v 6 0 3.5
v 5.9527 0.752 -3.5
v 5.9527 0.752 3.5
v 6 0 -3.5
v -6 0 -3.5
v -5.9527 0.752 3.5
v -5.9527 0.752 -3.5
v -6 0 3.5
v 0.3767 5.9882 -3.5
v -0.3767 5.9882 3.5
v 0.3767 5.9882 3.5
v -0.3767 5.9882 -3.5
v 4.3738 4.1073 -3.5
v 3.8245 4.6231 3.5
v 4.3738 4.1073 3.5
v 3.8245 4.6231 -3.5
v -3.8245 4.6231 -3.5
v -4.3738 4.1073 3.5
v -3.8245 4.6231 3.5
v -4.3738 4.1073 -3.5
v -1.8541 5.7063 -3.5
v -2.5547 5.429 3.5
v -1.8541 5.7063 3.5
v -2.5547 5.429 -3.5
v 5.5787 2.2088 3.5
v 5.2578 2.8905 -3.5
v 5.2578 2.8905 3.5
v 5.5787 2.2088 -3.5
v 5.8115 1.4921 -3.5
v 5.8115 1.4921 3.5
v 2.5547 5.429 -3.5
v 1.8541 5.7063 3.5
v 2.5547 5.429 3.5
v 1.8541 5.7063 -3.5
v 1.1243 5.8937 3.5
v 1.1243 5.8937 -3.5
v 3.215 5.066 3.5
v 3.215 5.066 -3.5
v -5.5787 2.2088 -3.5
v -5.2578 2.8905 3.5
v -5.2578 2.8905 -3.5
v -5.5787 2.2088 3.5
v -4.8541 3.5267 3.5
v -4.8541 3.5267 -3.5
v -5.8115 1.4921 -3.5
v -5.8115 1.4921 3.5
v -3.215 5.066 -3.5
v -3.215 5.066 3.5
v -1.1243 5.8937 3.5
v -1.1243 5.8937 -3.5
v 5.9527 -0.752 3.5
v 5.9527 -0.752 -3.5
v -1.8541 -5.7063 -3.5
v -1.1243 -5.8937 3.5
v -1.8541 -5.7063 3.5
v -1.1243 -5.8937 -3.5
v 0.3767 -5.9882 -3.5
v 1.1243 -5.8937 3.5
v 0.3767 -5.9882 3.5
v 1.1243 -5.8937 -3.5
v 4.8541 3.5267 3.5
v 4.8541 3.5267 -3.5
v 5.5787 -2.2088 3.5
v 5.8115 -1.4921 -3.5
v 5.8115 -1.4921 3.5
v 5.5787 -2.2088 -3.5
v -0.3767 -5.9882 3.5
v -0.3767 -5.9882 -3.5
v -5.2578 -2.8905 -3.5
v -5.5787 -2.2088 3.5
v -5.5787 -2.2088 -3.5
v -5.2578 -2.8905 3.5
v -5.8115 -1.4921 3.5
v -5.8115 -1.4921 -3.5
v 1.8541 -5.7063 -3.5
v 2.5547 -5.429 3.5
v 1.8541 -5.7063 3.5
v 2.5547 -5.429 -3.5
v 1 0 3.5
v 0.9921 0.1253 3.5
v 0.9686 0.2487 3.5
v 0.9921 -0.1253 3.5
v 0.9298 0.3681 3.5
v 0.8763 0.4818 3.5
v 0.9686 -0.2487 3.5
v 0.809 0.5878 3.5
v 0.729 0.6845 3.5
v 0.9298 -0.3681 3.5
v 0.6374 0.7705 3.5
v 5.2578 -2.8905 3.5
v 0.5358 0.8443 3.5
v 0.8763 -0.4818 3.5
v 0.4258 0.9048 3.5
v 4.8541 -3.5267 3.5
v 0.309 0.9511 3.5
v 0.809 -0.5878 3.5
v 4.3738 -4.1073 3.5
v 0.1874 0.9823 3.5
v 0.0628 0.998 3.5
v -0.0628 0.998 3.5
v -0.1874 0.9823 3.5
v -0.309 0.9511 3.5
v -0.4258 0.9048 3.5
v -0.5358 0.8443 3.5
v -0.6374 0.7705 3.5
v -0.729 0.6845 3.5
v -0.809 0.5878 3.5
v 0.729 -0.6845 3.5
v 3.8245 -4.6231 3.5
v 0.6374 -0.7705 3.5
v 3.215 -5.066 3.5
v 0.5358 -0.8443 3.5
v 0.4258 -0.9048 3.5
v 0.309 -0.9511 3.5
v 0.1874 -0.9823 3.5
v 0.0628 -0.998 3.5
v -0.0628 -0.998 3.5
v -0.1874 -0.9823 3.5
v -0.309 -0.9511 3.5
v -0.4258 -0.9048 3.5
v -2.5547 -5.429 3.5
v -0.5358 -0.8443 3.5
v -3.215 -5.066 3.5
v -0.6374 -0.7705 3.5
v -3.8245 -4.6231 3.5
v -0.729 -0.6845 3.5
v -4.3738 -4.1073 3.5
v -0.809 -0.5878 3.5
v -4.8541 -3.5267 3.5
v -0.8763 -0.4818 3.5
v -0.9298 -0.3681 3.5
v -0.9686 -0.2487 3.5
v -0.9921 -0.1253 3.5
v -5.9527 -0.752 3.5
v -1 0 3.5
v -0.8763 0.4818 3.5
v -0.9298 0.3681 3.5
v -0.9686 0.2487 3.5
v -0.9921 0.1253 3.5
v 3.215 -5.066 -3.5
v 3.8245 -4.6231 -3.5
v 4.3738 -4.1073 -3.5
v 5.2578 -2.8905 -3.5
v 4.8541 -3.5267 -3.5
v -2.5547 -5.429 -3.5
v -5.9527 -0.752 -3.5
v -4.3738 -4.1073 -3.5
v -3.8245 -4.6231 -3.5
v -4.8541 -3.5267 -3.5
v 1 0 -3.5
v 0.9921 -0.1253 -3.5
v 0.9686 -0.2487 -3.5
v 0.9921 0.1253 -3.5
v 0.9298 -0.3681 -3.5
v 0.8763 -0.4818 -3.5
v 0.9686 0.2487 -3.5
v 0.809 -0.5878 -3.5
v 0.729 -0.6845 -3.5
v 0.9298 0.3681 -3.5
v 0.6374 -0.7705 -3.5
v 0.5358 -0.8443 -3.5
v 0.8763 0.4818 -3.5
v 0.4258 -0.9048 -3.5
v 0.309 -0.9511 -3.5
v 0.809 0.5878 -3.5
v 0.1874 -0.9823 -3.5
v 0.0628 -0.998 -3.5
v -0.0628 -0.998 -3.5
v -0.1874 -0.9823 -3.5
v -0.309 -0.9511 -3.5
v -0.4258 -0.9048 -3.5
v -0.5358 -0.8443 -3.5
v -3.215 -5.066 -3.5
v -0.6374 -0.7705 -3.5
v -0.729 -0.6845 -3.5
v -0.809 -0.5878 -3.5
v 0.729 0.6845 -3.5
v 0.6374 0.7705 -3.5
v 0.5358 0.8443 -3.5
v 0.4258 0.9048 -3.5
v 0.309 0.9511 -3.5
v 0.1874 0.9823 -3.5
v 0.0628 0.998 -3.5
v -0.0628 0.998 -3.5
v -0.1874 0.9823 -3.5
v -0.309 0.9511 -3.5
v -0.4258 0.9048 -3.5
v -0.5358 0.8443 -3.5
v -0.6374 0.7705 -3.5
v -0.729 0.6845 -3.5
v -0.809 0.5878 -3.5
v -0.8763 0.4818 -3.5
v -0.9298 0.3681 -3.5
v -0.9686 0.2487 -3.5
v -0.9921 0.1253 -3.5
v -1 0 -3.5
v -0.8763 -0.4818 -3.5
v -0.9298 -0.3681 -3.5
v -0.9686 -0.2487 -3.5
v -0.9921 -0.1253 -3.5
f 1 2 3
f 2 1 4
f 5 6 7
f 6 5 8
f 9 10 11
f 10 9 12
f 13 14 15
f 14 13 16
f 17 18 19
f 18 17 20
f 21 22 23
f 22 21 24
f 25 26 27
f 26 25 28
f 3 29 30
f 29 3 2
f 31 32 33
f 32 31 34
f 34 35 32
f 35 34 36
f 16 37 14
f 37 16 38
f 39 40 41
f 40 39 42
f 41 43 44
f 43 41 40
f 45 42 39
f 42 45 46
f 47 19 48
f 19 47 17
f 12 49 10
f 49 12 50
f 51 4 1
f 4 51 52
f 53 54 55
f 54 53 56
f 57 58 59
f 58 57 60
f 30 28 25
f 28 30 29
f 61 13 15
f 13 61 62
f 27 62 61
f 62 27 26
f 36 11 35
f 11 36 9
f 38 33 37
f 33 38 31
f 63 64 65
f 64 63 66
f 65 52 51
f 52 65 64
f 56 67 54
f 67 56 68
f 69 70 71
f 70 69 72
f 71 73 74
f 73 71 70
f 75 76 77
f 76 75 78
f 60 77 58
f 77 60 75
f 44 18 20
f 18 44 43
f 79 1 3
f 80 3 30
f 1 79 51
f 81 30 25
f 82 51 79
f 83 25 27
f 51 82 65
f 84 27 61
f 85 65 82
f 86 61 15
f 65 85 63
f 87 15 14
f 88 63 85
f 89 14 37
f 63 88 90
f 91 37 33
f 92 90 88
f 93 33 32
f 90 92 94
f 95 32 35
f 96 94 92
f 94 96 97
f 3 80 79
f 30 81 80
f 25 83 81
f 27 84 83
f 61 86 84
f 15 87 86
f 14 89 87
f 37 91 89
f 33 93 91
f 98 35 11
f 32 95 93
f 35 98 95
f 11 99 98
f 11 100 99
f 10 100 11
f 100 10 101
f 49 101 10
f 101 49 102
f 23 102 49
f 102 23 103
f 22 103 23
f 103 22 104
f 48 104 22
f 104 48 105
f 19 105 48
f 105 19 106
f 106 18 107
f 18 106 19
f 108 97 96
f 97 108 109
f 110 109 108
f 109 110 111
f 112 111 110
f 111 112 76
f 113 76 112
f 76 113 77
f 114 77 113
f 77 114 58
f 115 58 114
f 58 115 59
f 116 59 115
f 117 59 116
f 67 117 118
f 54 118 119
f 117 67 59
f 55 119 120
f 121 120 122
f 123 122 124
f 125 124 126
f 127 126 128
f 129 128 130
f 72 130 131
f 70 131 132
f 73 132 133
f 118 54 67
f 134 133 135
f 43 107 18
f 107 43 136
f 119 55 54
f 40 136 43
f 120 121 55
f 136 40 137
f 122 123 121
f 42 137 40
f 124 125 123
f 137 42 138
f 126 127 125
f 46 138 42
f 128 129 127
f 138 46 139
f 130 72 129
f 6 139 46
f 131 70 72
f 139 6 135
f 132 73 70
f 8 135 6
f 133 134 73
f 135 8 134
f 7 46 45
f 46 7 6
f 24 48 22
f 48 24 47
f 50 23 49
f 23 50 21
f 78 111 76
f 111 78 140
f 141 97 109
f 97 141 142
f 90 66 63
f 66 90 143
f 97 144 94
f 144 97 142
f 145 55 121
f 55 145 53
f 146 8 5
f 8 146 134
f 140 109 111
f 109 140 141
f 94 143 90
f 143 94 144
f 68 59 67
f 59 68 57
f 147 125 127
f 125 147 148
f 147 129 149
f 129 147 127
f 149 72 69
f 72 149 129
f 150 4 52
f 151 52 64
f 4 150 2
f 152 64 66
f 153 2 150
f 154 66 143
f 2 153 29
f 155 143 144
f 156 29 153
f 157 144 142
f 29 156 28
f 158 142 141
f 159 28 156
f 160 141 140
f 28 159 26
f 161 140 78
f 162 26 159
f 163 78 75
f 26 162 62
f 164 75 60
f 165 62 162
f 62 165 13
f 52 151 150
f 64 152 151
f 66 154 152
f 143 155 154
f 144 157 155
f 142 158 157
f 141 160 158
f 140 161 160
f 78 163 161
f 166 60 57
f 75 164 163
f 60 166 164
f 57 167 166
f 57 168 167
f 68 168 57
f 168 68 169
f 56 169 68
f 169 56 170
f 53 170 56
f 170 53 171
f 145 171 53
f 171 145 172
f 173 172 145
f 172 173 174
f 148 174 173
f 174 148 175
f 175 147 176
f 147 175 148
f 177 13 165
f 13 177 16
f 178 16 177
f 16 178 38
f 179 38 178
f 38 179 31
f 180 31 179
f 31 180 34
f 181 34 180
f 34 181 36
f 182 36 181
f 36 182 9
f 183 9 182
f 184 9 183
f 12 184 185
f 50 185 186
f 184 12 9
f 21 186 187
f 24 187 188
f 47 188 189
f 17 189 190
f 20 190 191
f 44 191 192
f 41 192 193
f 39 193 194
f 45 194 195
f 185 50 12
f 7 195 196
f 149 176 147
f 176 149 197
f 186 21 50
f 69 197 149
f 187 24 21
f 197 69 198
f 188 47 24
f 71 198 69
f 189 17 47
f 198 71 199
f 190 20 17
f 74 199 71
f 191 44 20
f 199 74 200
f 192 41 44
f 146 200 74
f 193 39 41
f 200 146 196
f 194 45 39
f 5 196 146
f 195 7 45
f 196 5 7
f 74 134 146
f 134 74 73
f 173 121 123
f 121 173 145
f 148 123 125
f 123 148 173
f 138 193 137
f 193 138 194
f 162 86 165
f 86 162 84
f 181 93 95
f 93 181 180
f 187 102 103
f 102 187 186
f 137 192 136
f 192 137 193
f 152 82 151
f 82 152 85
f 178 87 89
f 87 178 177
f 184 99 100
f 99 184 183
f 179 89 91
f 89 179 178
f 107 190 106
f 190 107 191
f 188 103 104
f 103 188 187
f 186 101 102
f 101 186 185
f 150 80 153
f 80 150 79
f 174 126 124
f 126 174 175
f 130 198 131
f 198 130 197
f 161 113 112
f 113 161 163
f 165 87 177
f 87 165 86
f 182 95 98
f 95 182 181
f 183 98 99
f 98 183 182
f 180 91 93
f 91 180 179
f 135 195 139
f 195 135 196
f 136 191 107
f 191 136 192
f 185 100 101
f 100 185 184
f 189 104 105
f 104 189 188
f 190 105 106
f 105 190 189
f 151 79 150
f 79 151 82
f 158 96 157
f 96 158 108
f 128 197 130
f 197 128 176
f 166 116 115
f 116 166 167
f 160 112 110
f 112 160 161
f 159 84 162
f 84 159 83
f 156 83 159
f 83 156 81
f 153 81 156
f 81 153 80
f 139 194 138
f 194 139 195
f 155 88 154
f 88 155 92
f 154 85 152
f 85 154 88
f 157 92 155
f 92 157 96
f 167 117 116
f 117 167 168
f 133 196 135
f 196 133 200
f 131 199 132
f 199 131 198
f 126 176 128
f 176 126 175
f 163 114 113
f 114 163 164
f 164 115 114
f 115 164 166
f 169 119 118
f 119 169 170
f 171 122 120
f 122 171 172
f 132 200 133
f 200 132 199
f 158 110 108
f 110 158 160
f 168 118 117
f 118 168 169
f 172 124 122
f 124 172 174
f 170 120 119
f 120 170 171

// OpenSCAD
$fn = 50;


difference() {
	union() {
		translate(v = [0, 0, -3.5000000000]) {
			cylinder(h = 7, r = 6.0000000000);
		}
	}
	union() {
		translate(v = [0, 0, -100.0000000000]) {
			cylinder(h = 200, r = 1.0000000000);
		}
	}
}
